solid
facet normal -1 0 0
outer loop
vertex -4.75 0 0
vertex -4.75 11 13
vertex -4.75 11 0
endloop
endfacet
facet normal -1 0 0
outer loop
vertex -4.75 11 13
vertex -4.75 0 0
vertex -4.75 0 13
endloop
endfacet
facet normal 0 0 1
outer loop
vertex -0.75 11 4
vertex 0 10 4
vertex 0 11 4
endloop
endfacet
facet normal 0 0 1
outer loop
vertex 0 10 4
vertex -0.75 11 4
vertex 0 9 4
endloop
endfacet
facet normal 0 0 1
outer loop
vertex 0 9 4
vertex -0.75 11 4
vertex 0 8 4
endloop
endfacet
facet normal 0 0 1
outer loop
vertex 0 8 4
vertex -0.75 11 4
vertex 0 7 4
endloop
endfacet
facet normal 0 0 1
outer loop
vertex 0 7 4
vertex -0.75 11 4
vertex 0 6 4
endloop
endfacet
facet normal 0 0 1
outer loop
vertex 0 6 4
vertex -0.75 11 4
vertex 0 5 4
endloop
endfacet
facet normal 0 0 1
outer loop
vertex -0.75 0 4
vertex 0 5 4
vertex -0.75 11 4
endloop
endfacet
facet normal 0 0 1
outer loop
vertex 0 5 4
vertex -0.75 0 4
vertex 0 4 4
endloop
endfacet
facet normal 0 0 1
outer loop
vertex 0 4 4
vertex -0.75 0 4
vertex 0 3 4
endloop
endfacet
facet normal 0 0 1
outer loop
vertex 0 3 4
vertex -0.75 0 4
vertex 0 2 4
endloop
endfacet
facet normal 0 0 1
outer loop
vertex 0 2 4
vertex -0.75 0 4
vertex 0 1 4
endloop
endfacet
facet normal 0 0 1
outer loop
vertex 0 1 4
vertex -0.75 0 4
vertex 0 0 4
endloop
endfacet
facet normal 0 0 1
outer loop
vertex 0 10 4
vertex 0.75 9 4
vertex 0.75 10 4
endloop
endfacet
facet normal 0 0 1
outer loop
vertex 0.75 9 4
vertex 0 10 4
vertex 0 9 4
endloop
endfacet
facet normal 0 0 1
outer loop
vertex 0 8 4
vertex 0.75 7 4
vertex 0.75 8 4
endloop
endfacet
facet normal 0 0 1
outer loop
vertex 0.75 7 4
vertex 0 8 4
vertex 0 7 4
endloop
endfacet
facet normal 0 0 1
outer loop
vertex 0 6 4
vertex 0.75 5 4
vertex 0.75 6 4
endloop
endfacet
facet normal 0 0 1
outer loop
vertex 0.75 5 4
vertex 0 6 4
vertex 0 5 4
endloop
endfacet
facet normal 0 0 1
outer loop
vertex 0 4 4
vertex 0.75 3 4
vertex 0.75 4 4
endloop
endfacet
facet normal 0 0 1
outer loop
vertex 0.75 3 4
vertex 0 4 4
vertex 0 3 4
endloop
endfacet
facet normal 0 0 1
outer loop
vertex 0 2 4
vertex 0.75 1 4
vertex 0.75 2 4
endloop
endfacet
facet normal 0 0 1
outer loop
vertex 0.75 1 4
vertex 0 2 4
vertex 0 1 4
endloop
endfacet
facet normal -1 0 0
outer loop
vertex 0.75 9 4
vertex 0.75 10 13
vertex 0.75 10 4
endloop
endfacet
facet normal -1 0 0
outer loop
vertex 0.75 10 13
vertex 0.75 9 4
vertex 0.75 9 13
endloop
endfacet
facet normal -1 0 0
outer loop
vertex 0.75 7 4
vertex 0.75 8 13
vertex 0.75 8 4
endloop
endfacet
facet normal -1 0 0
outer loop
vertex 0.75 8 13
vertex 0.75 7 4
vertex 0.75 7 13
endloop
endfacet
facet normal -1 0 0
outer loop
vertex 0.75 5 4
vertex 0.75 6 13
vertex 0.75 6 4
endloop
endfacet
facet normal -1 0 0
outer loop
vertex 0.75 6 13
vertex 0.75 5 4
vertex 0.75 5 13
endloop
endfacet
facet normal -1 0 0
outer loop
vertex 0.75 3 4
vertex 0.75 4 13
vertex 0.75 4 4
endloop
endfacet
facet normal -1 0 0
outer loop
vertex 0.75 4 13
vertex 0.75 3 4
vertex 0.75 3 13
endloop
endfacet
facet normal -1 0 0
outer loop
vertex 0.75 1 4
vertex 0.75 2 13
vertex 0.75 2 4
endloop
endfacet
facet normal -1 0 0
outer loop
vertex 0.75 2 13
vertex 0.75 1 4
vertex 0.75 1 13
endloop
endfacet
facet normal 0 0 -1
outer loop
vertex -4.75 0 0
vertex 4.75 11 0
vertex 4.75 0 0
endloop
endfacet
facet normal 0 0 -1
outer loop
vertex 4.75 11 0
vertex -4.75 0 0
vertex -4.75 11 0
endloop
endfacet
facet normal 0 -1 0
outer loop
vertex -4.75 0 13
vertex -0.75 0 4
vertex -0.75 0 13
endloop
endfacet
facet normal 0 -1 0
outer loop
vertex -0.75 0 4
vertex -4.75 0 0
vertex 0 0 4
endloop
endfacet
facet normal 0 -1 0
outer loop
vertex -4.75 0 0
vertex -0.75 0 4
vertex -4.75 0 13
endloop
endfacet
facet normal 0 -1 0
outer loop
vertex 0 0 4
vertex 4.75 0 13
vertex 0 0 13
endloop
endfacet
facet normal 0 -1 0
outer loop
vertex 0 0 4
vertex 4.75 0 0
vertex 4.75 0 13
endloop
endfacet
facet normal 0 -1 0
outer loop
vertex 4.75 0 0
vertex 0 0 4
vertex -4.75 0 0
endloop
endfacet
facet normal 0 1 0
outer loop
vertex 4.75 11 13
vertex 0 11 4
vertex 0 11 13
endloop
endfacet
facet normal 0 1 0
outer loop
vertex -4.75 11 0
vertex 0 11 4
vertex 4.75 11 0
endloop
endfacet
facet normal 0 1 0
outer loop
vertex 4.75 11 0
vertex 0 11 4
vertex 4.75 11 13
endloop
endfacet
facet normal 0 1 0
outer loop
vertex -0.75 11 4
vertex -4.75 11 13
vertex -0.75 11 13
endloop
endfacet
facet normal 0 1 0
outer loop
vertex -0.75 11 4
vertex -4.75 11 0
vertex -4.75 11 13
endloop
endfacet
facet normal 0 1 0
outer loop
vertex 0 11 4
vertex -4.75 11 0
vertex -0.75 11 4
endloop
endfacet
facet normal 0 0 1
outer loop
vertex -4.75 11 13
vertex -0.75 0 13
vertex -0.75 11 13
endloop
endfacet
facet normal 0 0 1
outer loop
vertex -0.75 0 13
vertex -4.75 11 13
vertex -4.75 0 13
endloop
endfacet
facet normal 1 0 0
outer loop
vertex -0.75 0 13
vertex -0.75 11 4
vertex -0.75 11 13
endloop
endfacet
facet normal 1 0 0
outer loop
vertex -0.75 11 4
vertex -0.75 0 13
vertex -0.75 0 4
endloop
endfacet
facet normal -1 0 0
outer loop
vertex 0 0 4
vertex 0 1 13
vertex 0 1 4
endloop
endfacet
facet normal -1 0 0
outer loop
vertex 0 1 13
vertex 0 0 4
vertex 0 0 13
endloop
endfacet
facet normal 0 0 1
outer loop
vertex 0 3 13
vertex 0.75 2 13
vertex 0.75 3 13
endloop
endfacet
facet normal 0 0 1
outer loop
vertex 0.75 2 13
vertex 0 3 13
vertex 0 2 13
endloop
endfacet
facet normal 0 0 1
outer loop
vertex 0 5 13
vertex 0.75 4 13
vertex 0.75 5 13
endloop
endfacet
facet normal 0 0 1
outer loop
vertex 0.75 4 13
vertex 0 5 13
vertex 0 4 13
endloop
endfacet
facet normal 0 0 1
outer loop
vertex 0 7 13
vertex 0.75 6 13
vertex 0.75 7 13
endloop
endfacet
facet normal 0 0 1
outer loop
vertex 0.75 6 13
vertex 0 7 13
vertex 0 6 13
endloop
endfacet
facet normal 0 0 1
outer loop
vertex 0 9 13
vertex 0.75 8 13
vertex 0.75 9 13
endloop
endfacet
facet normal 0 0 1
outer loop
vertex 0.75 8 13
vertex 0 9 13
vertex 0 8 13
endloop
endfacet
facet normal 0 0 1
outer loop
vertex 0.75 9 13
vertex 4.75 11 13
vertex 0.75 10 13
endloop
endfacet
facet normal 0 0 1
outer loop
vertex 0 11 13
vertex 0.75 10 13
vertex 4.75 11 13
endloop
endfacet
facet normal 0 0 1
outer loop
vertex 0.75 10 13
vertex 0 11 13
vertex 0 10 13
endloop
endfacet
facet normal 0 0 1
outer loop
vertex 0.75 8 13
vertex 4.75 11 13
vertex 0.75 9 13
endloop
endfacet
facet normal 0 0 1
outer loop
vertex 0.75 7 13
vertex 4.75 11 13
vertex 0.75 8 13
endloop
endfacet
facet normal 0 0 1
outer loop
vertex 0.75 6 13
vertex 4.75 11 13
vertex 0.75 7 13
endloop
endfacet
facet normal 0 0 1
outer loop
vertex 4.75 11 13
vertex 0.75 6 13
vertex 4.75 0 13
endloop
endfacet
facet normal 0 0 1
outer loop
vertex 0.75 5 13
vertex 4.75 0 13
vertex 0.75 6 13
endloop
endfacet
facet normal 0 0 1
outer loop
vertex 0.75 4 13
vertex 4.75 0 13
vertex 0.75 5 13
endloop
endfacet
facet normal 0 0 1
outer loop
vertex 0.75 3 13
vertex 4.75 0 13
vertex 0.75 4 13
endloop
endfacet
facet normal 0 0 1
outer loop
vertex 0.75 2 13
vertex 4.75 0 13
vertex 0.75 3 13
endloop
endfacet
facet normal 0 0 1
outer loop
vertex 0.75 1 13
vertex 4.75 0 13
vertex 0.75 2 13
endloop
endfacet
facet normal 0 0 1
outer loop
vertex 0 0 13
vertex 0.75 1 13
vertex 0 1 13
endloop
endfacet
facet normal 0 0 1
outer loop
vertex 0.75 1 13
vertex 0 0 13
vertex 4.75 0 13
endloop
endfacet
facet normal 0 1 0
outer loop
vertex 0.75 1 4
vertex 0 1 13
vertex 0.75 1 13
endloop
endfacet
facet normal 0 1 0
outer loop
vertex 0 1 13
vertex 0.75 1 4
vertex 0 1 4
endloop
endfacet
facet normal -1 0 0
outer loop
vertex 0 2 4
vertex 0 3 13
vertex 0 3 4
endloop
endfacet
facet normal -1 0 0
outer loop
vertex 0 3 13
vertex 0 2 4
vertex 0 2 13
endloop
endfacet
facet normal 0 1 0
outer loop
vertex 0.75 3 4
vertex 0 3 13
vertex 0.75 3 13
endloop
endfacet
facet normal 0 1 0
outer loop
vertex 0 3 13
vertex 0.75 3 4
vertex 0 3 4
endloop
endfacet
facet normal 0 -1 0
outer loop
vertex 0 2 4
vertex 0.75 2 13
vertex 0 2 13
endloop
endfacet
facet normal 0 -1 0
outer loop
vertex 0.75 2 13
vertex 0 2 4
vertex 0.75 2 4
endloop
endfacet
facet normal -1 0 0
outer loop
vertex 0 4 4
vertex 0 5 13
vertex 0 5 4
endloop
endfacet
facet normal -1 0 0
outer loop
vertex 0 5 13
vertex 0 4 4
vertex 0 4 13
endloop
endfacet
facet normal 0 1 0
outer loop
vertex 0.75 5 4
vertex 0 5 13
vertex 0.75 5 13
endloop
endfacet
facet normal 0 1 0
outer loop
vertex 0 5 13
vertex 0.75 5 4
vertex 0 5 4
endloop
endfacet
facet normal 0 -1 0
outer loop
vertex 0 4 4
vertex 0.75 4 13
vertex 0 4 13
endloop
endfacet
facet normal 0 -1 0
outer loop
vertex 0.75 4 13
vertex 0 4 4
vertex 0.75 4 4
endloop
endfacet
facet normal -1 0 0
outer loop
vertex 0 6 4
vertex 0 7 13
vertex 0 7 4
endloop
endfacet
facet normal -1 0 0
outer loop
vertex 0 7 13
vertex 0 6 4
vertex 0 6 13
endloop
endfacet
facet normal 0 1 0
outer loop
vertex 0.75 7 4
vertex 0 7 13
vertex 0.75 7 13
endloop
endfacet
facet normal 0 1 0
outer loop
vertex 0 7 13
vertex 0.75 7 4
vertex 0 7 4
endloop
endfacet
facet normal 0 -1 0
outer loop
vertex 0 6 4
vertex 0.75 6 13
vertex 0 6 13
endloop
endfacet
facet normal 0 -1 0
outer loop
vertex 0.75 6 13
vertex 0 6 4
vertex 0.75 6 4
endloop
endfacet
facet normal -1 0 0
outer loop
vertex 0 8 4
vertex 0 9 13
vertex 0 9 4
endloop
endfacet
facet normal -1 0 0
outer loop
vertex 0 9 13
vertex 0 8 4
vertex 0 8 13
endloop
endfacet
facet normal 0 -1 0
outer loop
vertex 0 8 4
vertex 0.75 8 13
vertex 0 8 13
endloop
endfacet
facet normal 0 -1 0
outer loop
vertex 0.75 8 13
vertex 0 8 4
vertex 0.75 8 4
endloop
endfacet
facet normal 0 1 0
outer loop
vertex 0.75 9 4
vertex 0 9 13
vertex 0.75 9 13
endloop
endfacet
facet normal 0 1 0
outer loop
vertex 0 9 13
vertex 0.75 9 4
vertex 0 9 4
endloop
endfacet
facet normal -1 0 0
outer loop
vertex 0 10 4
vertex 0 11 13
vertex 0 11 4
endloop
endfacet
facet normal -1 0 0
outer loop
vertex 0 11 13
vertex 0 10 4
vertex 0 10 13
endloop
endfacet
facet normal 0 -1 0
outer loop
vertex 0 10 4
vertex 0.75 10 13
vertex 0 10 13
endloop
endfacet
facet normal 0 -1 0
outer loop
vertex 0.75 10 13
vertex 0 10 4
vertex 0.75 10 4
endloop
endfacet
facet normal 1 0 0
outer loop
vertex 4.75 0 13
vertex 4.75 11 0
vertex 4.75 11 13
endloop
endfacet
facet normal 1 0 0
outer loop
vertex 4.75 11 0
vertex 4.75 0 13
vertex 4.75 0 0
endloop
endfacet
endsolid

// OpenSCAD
// file: config.scad
// ===========================================================================
// Configuration file for the whole XY-stage design.
// ===========================================================================

// Parameters for stepper bracket
BRACKET_EDGE_LENGTH = 42.3;
BRACKET_DIAMETER = 22;
BRACKET_THICKNESS = 4;
SCREW_DIAMETER = 3;
SCREW_DISTANCE = 31;
SHAFT_HEIGHT = 24;
// ------------------------------

// Parameters for anchor
ANCHOR_THICKNESS = 4;
ANCHOR_SHAFT_OVERHEAD = 4;
ANCHOR_WIDTH = 40;
ANCHOR_SCREW_MARGIN = 7;
ANCHOR_SCREW_DIAMETER = 3;
// ---------------------

// Parameters for pulleys
PULLEY_INNER_DIAMETER = 8;
PULLEY_OUTER_DIAMETER = 25;
PULLEY_WIDTH = 9;
PULLEY_MARGIN = 3;
PULLEY_BACK_THICKNESS = 5;
PULLEY_DISTANCE = 3;
// ---------------------

PULLEY_CENTER = (PULLEY_MARGIN + PULLEY_OUTER_DIAMETER) / 2;
PULLEY_HEIGHT = 2 * PULLEY_WIDTH + 2 * ANCHOR_THICKNESS + PULLEY_DISTANCE;
PULLEY_EDGE_LENGTH = PULLEY_OUTER_DIAMETER + PULLEY_MARGIN;

// Parameters for stage brackets
ROD_BRACKET_DIAMETER = 8;
ROD_BRACKET_DEPTH = 5;
ROD_BRACKET_THICKNESS = 4;
// -----------------------------

ROD_BRACKET_WIDTH = (PULLEY_OUTER_DIAMETER - PULLEY_INNER_DIAMETER) / 2;
ROD_BRACKET_LENGTH = ROD_BRACKET_DIAMETER + ROD_BRACKET_THICKNESS;

// Parameters for the platform
PLATFORM_LENGTH = 40;
PLATFORM_WIDTH = 60;
LINEAR_BEARING_OUTER_DIAMETER = 15;
LINEAR_BEARING_BRACKET_THICKNESS = 2;
TIMING_BELT_PITCH = 2;
TIMING_BELT_CREST = 1.5; // default: 1.38
TIMING_BELT_TROUGH = 0.75; // default: 0.75
TIMING_BELT_TRAP_THICKNESS = 4;
// ---------------------------

TIMING_BELT_TRAP_WIDTH = 5.5 * TIMING_BELT_PITCH;
LINEAR_BEARING_BRACKET_WIDTH = LINEAR_BEARING_BRACKET_THICKNESS * 2 + LINEAR_BEARING_OUTER_DIAMETER;


// Parameters for XY-stage
STEPPER_MOTOR_PULLEY_DIAMETER = 20;
STEPPER_MOTOR_PULLEY_HEIGHT = 12;
// ----------------------
// main file
// ===========================================================================
// Platform moving on the horizontal gantry.
// ===========================================================================

include <config.scad>;

$fn = 40;

// Timing belt trappers
module timing_belt_trapper_stub() {
    difference() {
        union() {
            translate([-TIMING_BELT_TRAP_THICKNESS - TIMING_BELT_CREST + TIMING_BELT_TROUGH, 0, 0]) {
                cube([TIMING_BELT_TRAP_THICKNESS + TIMING_BELT_CREST, TIMING_BELT_TRAP_WIDTH, ANCHOR_THICKNESS]);
            }
            
            translate([TIMING_BELT_TROUGH - TIMING_BELT_TRAP_THICKNESS - TIMING_BELT_CREST, 0, ANCHOR_THICKNESS]) {
                cube([TIMING_BELT_TRAP_THICKNESS, TIMING_BELT_TRAP_WIDTH, PULLEY_WIDTH]);
            }
        }
    }

    for (offset = [0 : TIMING_BELT_PITCH : 5 * TIMING_BELT_PITCH]) {
        translate([0, offset, ANCHOR_THICKNESS]) {
            cube([TIMING_BELT_TROUGH, TIMING_BELT_PITCH / 2, PULLEY_WIDTH]);
        }
    }

    translate([TIMING_BELT_TROUGH, 0, 0]) {
        cube([TIMING_BELT_TRAP_THICKNESS, TIMING_BELT_TRAP_WIDTH, PULLEY_WIDTH + ANCHOR_THICKNESS]);
    }
}

timing_belt_trapper_stub();
